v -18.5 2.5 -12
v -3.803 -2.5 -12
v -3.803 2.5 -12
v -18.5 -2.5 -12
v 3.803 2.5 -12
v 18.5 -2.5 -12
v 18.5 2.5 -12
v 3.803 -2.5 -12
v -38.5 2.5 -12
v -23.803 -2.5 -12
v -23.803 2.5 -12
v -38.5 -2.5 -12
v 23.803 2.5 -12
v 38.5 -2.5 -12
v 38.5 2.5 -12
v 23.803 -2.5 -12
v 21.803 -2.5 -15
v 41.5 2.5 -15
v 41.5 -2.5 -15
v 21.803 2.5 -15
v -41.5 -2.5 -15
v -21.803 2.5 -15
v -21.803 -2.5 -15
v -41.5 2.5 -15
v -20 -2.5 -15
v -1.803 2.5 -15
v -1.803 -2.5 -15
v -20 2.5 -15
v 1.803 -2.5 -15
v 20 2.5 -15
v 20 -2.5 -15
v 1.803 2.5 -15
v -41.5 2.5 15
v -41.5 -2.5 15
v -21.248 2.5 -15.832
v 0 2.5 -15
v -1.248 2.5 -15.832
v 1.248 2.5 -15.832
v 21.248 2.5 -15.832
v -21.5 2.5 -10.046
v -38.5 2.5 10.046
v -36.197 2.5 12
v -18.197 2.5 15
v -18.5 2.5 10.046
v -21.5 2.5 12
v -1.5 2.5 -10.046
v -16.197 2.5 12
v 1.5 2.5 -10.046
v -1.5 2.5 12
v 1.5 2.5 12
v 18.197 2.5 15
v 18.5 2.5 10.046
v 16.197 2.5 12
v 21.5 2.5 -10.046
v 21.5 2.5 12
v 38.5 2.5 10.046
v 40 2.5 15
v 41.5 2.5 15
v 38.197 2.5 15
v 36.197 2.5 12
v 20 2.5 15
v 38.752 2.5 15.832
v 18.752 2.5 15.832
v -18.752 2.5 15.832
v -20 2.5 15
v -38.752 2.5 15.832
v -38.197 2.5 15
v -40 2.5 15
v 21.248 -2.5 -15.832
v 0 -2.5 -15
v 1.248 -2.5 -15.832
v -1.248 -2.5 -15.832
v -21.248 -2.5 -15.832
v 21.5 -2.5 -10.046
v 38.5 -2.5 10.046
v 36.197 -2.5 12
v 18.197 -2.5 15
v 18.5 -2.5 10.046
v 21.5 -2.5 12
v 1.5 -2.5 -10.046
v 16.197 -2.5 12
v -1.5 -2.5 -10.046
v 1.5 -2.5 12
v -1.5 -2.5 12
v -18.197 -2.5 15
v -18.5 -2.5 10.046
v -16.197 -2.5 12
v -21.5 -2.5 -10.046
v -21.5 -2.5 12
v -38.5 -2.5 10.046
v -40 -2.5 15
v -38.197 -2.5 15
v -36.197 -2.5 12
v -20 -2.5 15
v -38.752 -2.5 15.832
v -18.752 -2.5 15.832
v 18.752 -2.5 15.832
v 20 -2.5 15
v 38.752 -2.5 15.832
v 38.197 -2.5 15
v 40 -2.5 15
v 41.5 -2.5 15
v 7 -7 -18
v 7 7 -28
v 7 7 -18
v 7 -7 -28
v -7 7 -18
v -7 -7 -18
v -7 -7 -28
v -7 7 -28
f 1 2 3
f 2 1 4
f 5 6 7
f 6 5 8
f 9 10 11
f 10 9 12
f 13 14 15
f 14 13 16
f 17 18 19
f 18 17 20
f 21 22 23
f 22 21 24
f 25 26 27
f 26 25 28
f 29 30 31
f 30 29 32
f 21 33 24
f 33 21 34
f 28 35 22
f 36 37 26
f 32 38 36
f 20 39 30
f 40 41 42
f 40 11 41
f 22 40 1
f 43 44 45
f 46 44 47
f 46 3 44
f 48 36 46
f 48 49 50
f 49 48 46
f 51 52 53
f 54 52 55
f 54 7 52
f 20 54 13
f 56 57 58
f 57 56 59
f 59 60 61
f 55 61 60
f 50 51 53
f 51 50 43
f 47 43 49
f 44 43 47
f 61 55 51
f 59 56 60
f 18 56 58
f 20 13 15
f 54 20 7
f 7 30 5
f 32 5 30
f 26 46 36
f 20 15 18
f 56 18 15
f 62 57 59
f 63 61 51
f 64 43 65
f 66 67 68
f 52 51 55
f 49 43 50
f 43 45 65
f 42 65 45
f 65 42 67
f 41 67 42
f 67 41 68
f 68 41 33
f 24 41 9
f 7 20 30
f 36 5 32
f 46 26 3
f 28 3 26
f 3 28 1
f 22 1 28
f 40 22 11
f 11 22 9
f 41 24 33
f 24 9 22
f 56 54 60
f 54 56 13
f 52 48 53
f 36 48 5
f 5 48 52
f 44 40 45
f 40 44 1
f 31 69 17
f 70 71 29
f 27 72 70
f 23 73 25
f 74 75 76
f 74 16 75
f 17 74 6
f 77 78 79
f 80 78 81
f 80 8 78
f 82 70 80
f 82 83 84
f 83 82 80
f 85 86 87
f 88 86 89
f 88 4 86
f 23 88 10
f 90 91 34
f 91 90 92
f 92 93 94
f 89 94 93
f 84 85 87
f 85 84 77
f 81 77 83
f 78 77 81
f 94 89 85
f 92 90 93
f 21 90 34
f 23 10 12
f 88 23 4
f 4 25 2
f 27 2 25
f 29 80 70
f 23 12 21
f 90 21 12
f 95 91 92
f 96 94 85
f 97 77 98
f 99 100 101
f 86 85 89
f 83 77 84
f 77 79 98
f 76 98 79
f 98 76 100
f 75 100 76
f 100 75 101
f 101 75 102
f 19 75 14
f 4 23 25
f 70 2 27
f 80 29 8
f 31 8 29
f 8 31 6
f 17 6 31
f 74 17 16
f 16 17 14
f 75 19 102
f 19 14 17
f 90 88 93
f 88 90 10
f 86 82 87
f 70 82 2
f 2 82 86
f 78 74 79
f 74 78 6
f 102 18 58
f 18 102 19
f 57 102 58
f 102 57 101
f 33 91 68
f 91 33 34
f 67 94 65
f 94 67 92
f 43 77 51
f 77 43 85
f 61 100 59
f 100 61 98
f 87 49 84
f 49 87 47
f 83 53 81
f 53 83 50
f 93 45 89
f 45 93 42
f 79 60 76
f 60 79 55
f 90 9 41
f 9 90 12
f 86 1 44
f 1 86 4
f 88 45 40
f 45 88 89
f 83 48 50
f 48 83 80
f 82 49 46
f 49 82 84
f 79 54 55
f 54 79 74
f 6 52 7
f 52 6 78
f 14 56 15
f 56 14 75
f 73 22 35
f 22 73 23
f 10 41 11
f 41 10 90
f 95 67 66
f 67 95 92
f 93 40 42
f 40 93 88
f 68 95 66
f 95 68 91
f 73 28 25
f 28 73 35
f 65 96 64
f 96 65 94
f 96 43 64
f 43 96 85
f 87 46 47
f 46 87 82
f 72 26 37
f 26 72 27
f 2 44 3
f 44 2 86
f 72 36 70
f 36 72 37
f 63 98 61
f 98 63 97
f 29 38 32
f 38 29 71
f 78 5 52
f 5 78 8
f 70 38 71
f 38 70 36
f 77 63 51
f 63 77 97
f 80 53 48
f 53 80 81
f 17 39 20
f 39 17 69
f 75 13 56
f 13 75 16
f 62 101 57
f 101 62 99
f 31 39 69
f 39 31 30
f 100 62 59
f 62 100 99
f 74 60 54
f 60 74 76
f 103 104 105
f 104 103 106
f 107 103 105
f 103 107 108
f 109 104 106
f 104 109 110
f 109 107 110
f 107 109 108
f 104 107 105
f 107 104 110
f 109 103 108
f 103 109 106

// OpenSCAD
// file: _common.scad
// structure-sim 共用設定
$fn = 40;

// 桿件：從點 a 到點 b 畫一個圓柱桿
module rod(a, b, r = 1.5) {
  v = b - a;
  L = norm(v);
  // 計算旋轉到 v 方向的角度
  ay = atan2(sqrt(v[0]*v[0] + v[1]*v[1]), v[2]);
  az = atan2(v[1], v[0]);
  translate(a) rotate([0, ay, az]) cylinder(h = L, r = r);
}
// main file
// 桁架 Truss — Pratt 型（4 格：豎桿受壓、斜桿由上弦往跨中向下傾受張）
include <_common.scad>

// 斜桿：從 (x0, z0) 連到 (x1, z1) 的方桿（繞 Y 軸旋轉，z 軸轉到 (dx, dz) 方向）
module diag(x0, z0, x1, z1) {
  translate([x0, 0, z0])
    rotate([0, atan2(x1 - x0, z1 - z0), 0])
      translate([-1.5, -2.5, 0]) cube([3, 5, norm([x1 - x0, z1 - z0])]);
}

color([0.36, 0.42, 0.55]) {
  // 下弦（底）4 段：x = -40 ～ 40
  for (i = [-2:1]) translate([i * 20 - 1.5, -2.5, -15]) cube([23, 5, 3]);
  // 上弦（頂）4 段：與下弦等長、對齊豎桿
  for (i = [-2:1]) translate([i * 20 - 1.5, -2.5, 12]) cube([23, 5, 3]);
  // 豎桿 5 根（兩端為端柱）— Pratt 特徵：受壓
  for (x = [-40, -20, 0, 20, 40]) translate([x - 1.5, -2.5, -15]) cube([3, 5, 30]);
  // 斜桿 — Pratt 特徵：由上弦往跨中向下傾（左半 ↘、右半 ↙），在下弦中央會合成 V，受張
  diag(-20, -15, -40, 15);
  diag(  0, -15, -20, 15);
  diag(  0, -15,  20, 15);
  diag( 20, -15,  40, 15);
}

// 中央懸吊重物
color([0.86, 0.25, 0.25])
  translate([-7, -7, -28]) cube([14, 14, 10]);
